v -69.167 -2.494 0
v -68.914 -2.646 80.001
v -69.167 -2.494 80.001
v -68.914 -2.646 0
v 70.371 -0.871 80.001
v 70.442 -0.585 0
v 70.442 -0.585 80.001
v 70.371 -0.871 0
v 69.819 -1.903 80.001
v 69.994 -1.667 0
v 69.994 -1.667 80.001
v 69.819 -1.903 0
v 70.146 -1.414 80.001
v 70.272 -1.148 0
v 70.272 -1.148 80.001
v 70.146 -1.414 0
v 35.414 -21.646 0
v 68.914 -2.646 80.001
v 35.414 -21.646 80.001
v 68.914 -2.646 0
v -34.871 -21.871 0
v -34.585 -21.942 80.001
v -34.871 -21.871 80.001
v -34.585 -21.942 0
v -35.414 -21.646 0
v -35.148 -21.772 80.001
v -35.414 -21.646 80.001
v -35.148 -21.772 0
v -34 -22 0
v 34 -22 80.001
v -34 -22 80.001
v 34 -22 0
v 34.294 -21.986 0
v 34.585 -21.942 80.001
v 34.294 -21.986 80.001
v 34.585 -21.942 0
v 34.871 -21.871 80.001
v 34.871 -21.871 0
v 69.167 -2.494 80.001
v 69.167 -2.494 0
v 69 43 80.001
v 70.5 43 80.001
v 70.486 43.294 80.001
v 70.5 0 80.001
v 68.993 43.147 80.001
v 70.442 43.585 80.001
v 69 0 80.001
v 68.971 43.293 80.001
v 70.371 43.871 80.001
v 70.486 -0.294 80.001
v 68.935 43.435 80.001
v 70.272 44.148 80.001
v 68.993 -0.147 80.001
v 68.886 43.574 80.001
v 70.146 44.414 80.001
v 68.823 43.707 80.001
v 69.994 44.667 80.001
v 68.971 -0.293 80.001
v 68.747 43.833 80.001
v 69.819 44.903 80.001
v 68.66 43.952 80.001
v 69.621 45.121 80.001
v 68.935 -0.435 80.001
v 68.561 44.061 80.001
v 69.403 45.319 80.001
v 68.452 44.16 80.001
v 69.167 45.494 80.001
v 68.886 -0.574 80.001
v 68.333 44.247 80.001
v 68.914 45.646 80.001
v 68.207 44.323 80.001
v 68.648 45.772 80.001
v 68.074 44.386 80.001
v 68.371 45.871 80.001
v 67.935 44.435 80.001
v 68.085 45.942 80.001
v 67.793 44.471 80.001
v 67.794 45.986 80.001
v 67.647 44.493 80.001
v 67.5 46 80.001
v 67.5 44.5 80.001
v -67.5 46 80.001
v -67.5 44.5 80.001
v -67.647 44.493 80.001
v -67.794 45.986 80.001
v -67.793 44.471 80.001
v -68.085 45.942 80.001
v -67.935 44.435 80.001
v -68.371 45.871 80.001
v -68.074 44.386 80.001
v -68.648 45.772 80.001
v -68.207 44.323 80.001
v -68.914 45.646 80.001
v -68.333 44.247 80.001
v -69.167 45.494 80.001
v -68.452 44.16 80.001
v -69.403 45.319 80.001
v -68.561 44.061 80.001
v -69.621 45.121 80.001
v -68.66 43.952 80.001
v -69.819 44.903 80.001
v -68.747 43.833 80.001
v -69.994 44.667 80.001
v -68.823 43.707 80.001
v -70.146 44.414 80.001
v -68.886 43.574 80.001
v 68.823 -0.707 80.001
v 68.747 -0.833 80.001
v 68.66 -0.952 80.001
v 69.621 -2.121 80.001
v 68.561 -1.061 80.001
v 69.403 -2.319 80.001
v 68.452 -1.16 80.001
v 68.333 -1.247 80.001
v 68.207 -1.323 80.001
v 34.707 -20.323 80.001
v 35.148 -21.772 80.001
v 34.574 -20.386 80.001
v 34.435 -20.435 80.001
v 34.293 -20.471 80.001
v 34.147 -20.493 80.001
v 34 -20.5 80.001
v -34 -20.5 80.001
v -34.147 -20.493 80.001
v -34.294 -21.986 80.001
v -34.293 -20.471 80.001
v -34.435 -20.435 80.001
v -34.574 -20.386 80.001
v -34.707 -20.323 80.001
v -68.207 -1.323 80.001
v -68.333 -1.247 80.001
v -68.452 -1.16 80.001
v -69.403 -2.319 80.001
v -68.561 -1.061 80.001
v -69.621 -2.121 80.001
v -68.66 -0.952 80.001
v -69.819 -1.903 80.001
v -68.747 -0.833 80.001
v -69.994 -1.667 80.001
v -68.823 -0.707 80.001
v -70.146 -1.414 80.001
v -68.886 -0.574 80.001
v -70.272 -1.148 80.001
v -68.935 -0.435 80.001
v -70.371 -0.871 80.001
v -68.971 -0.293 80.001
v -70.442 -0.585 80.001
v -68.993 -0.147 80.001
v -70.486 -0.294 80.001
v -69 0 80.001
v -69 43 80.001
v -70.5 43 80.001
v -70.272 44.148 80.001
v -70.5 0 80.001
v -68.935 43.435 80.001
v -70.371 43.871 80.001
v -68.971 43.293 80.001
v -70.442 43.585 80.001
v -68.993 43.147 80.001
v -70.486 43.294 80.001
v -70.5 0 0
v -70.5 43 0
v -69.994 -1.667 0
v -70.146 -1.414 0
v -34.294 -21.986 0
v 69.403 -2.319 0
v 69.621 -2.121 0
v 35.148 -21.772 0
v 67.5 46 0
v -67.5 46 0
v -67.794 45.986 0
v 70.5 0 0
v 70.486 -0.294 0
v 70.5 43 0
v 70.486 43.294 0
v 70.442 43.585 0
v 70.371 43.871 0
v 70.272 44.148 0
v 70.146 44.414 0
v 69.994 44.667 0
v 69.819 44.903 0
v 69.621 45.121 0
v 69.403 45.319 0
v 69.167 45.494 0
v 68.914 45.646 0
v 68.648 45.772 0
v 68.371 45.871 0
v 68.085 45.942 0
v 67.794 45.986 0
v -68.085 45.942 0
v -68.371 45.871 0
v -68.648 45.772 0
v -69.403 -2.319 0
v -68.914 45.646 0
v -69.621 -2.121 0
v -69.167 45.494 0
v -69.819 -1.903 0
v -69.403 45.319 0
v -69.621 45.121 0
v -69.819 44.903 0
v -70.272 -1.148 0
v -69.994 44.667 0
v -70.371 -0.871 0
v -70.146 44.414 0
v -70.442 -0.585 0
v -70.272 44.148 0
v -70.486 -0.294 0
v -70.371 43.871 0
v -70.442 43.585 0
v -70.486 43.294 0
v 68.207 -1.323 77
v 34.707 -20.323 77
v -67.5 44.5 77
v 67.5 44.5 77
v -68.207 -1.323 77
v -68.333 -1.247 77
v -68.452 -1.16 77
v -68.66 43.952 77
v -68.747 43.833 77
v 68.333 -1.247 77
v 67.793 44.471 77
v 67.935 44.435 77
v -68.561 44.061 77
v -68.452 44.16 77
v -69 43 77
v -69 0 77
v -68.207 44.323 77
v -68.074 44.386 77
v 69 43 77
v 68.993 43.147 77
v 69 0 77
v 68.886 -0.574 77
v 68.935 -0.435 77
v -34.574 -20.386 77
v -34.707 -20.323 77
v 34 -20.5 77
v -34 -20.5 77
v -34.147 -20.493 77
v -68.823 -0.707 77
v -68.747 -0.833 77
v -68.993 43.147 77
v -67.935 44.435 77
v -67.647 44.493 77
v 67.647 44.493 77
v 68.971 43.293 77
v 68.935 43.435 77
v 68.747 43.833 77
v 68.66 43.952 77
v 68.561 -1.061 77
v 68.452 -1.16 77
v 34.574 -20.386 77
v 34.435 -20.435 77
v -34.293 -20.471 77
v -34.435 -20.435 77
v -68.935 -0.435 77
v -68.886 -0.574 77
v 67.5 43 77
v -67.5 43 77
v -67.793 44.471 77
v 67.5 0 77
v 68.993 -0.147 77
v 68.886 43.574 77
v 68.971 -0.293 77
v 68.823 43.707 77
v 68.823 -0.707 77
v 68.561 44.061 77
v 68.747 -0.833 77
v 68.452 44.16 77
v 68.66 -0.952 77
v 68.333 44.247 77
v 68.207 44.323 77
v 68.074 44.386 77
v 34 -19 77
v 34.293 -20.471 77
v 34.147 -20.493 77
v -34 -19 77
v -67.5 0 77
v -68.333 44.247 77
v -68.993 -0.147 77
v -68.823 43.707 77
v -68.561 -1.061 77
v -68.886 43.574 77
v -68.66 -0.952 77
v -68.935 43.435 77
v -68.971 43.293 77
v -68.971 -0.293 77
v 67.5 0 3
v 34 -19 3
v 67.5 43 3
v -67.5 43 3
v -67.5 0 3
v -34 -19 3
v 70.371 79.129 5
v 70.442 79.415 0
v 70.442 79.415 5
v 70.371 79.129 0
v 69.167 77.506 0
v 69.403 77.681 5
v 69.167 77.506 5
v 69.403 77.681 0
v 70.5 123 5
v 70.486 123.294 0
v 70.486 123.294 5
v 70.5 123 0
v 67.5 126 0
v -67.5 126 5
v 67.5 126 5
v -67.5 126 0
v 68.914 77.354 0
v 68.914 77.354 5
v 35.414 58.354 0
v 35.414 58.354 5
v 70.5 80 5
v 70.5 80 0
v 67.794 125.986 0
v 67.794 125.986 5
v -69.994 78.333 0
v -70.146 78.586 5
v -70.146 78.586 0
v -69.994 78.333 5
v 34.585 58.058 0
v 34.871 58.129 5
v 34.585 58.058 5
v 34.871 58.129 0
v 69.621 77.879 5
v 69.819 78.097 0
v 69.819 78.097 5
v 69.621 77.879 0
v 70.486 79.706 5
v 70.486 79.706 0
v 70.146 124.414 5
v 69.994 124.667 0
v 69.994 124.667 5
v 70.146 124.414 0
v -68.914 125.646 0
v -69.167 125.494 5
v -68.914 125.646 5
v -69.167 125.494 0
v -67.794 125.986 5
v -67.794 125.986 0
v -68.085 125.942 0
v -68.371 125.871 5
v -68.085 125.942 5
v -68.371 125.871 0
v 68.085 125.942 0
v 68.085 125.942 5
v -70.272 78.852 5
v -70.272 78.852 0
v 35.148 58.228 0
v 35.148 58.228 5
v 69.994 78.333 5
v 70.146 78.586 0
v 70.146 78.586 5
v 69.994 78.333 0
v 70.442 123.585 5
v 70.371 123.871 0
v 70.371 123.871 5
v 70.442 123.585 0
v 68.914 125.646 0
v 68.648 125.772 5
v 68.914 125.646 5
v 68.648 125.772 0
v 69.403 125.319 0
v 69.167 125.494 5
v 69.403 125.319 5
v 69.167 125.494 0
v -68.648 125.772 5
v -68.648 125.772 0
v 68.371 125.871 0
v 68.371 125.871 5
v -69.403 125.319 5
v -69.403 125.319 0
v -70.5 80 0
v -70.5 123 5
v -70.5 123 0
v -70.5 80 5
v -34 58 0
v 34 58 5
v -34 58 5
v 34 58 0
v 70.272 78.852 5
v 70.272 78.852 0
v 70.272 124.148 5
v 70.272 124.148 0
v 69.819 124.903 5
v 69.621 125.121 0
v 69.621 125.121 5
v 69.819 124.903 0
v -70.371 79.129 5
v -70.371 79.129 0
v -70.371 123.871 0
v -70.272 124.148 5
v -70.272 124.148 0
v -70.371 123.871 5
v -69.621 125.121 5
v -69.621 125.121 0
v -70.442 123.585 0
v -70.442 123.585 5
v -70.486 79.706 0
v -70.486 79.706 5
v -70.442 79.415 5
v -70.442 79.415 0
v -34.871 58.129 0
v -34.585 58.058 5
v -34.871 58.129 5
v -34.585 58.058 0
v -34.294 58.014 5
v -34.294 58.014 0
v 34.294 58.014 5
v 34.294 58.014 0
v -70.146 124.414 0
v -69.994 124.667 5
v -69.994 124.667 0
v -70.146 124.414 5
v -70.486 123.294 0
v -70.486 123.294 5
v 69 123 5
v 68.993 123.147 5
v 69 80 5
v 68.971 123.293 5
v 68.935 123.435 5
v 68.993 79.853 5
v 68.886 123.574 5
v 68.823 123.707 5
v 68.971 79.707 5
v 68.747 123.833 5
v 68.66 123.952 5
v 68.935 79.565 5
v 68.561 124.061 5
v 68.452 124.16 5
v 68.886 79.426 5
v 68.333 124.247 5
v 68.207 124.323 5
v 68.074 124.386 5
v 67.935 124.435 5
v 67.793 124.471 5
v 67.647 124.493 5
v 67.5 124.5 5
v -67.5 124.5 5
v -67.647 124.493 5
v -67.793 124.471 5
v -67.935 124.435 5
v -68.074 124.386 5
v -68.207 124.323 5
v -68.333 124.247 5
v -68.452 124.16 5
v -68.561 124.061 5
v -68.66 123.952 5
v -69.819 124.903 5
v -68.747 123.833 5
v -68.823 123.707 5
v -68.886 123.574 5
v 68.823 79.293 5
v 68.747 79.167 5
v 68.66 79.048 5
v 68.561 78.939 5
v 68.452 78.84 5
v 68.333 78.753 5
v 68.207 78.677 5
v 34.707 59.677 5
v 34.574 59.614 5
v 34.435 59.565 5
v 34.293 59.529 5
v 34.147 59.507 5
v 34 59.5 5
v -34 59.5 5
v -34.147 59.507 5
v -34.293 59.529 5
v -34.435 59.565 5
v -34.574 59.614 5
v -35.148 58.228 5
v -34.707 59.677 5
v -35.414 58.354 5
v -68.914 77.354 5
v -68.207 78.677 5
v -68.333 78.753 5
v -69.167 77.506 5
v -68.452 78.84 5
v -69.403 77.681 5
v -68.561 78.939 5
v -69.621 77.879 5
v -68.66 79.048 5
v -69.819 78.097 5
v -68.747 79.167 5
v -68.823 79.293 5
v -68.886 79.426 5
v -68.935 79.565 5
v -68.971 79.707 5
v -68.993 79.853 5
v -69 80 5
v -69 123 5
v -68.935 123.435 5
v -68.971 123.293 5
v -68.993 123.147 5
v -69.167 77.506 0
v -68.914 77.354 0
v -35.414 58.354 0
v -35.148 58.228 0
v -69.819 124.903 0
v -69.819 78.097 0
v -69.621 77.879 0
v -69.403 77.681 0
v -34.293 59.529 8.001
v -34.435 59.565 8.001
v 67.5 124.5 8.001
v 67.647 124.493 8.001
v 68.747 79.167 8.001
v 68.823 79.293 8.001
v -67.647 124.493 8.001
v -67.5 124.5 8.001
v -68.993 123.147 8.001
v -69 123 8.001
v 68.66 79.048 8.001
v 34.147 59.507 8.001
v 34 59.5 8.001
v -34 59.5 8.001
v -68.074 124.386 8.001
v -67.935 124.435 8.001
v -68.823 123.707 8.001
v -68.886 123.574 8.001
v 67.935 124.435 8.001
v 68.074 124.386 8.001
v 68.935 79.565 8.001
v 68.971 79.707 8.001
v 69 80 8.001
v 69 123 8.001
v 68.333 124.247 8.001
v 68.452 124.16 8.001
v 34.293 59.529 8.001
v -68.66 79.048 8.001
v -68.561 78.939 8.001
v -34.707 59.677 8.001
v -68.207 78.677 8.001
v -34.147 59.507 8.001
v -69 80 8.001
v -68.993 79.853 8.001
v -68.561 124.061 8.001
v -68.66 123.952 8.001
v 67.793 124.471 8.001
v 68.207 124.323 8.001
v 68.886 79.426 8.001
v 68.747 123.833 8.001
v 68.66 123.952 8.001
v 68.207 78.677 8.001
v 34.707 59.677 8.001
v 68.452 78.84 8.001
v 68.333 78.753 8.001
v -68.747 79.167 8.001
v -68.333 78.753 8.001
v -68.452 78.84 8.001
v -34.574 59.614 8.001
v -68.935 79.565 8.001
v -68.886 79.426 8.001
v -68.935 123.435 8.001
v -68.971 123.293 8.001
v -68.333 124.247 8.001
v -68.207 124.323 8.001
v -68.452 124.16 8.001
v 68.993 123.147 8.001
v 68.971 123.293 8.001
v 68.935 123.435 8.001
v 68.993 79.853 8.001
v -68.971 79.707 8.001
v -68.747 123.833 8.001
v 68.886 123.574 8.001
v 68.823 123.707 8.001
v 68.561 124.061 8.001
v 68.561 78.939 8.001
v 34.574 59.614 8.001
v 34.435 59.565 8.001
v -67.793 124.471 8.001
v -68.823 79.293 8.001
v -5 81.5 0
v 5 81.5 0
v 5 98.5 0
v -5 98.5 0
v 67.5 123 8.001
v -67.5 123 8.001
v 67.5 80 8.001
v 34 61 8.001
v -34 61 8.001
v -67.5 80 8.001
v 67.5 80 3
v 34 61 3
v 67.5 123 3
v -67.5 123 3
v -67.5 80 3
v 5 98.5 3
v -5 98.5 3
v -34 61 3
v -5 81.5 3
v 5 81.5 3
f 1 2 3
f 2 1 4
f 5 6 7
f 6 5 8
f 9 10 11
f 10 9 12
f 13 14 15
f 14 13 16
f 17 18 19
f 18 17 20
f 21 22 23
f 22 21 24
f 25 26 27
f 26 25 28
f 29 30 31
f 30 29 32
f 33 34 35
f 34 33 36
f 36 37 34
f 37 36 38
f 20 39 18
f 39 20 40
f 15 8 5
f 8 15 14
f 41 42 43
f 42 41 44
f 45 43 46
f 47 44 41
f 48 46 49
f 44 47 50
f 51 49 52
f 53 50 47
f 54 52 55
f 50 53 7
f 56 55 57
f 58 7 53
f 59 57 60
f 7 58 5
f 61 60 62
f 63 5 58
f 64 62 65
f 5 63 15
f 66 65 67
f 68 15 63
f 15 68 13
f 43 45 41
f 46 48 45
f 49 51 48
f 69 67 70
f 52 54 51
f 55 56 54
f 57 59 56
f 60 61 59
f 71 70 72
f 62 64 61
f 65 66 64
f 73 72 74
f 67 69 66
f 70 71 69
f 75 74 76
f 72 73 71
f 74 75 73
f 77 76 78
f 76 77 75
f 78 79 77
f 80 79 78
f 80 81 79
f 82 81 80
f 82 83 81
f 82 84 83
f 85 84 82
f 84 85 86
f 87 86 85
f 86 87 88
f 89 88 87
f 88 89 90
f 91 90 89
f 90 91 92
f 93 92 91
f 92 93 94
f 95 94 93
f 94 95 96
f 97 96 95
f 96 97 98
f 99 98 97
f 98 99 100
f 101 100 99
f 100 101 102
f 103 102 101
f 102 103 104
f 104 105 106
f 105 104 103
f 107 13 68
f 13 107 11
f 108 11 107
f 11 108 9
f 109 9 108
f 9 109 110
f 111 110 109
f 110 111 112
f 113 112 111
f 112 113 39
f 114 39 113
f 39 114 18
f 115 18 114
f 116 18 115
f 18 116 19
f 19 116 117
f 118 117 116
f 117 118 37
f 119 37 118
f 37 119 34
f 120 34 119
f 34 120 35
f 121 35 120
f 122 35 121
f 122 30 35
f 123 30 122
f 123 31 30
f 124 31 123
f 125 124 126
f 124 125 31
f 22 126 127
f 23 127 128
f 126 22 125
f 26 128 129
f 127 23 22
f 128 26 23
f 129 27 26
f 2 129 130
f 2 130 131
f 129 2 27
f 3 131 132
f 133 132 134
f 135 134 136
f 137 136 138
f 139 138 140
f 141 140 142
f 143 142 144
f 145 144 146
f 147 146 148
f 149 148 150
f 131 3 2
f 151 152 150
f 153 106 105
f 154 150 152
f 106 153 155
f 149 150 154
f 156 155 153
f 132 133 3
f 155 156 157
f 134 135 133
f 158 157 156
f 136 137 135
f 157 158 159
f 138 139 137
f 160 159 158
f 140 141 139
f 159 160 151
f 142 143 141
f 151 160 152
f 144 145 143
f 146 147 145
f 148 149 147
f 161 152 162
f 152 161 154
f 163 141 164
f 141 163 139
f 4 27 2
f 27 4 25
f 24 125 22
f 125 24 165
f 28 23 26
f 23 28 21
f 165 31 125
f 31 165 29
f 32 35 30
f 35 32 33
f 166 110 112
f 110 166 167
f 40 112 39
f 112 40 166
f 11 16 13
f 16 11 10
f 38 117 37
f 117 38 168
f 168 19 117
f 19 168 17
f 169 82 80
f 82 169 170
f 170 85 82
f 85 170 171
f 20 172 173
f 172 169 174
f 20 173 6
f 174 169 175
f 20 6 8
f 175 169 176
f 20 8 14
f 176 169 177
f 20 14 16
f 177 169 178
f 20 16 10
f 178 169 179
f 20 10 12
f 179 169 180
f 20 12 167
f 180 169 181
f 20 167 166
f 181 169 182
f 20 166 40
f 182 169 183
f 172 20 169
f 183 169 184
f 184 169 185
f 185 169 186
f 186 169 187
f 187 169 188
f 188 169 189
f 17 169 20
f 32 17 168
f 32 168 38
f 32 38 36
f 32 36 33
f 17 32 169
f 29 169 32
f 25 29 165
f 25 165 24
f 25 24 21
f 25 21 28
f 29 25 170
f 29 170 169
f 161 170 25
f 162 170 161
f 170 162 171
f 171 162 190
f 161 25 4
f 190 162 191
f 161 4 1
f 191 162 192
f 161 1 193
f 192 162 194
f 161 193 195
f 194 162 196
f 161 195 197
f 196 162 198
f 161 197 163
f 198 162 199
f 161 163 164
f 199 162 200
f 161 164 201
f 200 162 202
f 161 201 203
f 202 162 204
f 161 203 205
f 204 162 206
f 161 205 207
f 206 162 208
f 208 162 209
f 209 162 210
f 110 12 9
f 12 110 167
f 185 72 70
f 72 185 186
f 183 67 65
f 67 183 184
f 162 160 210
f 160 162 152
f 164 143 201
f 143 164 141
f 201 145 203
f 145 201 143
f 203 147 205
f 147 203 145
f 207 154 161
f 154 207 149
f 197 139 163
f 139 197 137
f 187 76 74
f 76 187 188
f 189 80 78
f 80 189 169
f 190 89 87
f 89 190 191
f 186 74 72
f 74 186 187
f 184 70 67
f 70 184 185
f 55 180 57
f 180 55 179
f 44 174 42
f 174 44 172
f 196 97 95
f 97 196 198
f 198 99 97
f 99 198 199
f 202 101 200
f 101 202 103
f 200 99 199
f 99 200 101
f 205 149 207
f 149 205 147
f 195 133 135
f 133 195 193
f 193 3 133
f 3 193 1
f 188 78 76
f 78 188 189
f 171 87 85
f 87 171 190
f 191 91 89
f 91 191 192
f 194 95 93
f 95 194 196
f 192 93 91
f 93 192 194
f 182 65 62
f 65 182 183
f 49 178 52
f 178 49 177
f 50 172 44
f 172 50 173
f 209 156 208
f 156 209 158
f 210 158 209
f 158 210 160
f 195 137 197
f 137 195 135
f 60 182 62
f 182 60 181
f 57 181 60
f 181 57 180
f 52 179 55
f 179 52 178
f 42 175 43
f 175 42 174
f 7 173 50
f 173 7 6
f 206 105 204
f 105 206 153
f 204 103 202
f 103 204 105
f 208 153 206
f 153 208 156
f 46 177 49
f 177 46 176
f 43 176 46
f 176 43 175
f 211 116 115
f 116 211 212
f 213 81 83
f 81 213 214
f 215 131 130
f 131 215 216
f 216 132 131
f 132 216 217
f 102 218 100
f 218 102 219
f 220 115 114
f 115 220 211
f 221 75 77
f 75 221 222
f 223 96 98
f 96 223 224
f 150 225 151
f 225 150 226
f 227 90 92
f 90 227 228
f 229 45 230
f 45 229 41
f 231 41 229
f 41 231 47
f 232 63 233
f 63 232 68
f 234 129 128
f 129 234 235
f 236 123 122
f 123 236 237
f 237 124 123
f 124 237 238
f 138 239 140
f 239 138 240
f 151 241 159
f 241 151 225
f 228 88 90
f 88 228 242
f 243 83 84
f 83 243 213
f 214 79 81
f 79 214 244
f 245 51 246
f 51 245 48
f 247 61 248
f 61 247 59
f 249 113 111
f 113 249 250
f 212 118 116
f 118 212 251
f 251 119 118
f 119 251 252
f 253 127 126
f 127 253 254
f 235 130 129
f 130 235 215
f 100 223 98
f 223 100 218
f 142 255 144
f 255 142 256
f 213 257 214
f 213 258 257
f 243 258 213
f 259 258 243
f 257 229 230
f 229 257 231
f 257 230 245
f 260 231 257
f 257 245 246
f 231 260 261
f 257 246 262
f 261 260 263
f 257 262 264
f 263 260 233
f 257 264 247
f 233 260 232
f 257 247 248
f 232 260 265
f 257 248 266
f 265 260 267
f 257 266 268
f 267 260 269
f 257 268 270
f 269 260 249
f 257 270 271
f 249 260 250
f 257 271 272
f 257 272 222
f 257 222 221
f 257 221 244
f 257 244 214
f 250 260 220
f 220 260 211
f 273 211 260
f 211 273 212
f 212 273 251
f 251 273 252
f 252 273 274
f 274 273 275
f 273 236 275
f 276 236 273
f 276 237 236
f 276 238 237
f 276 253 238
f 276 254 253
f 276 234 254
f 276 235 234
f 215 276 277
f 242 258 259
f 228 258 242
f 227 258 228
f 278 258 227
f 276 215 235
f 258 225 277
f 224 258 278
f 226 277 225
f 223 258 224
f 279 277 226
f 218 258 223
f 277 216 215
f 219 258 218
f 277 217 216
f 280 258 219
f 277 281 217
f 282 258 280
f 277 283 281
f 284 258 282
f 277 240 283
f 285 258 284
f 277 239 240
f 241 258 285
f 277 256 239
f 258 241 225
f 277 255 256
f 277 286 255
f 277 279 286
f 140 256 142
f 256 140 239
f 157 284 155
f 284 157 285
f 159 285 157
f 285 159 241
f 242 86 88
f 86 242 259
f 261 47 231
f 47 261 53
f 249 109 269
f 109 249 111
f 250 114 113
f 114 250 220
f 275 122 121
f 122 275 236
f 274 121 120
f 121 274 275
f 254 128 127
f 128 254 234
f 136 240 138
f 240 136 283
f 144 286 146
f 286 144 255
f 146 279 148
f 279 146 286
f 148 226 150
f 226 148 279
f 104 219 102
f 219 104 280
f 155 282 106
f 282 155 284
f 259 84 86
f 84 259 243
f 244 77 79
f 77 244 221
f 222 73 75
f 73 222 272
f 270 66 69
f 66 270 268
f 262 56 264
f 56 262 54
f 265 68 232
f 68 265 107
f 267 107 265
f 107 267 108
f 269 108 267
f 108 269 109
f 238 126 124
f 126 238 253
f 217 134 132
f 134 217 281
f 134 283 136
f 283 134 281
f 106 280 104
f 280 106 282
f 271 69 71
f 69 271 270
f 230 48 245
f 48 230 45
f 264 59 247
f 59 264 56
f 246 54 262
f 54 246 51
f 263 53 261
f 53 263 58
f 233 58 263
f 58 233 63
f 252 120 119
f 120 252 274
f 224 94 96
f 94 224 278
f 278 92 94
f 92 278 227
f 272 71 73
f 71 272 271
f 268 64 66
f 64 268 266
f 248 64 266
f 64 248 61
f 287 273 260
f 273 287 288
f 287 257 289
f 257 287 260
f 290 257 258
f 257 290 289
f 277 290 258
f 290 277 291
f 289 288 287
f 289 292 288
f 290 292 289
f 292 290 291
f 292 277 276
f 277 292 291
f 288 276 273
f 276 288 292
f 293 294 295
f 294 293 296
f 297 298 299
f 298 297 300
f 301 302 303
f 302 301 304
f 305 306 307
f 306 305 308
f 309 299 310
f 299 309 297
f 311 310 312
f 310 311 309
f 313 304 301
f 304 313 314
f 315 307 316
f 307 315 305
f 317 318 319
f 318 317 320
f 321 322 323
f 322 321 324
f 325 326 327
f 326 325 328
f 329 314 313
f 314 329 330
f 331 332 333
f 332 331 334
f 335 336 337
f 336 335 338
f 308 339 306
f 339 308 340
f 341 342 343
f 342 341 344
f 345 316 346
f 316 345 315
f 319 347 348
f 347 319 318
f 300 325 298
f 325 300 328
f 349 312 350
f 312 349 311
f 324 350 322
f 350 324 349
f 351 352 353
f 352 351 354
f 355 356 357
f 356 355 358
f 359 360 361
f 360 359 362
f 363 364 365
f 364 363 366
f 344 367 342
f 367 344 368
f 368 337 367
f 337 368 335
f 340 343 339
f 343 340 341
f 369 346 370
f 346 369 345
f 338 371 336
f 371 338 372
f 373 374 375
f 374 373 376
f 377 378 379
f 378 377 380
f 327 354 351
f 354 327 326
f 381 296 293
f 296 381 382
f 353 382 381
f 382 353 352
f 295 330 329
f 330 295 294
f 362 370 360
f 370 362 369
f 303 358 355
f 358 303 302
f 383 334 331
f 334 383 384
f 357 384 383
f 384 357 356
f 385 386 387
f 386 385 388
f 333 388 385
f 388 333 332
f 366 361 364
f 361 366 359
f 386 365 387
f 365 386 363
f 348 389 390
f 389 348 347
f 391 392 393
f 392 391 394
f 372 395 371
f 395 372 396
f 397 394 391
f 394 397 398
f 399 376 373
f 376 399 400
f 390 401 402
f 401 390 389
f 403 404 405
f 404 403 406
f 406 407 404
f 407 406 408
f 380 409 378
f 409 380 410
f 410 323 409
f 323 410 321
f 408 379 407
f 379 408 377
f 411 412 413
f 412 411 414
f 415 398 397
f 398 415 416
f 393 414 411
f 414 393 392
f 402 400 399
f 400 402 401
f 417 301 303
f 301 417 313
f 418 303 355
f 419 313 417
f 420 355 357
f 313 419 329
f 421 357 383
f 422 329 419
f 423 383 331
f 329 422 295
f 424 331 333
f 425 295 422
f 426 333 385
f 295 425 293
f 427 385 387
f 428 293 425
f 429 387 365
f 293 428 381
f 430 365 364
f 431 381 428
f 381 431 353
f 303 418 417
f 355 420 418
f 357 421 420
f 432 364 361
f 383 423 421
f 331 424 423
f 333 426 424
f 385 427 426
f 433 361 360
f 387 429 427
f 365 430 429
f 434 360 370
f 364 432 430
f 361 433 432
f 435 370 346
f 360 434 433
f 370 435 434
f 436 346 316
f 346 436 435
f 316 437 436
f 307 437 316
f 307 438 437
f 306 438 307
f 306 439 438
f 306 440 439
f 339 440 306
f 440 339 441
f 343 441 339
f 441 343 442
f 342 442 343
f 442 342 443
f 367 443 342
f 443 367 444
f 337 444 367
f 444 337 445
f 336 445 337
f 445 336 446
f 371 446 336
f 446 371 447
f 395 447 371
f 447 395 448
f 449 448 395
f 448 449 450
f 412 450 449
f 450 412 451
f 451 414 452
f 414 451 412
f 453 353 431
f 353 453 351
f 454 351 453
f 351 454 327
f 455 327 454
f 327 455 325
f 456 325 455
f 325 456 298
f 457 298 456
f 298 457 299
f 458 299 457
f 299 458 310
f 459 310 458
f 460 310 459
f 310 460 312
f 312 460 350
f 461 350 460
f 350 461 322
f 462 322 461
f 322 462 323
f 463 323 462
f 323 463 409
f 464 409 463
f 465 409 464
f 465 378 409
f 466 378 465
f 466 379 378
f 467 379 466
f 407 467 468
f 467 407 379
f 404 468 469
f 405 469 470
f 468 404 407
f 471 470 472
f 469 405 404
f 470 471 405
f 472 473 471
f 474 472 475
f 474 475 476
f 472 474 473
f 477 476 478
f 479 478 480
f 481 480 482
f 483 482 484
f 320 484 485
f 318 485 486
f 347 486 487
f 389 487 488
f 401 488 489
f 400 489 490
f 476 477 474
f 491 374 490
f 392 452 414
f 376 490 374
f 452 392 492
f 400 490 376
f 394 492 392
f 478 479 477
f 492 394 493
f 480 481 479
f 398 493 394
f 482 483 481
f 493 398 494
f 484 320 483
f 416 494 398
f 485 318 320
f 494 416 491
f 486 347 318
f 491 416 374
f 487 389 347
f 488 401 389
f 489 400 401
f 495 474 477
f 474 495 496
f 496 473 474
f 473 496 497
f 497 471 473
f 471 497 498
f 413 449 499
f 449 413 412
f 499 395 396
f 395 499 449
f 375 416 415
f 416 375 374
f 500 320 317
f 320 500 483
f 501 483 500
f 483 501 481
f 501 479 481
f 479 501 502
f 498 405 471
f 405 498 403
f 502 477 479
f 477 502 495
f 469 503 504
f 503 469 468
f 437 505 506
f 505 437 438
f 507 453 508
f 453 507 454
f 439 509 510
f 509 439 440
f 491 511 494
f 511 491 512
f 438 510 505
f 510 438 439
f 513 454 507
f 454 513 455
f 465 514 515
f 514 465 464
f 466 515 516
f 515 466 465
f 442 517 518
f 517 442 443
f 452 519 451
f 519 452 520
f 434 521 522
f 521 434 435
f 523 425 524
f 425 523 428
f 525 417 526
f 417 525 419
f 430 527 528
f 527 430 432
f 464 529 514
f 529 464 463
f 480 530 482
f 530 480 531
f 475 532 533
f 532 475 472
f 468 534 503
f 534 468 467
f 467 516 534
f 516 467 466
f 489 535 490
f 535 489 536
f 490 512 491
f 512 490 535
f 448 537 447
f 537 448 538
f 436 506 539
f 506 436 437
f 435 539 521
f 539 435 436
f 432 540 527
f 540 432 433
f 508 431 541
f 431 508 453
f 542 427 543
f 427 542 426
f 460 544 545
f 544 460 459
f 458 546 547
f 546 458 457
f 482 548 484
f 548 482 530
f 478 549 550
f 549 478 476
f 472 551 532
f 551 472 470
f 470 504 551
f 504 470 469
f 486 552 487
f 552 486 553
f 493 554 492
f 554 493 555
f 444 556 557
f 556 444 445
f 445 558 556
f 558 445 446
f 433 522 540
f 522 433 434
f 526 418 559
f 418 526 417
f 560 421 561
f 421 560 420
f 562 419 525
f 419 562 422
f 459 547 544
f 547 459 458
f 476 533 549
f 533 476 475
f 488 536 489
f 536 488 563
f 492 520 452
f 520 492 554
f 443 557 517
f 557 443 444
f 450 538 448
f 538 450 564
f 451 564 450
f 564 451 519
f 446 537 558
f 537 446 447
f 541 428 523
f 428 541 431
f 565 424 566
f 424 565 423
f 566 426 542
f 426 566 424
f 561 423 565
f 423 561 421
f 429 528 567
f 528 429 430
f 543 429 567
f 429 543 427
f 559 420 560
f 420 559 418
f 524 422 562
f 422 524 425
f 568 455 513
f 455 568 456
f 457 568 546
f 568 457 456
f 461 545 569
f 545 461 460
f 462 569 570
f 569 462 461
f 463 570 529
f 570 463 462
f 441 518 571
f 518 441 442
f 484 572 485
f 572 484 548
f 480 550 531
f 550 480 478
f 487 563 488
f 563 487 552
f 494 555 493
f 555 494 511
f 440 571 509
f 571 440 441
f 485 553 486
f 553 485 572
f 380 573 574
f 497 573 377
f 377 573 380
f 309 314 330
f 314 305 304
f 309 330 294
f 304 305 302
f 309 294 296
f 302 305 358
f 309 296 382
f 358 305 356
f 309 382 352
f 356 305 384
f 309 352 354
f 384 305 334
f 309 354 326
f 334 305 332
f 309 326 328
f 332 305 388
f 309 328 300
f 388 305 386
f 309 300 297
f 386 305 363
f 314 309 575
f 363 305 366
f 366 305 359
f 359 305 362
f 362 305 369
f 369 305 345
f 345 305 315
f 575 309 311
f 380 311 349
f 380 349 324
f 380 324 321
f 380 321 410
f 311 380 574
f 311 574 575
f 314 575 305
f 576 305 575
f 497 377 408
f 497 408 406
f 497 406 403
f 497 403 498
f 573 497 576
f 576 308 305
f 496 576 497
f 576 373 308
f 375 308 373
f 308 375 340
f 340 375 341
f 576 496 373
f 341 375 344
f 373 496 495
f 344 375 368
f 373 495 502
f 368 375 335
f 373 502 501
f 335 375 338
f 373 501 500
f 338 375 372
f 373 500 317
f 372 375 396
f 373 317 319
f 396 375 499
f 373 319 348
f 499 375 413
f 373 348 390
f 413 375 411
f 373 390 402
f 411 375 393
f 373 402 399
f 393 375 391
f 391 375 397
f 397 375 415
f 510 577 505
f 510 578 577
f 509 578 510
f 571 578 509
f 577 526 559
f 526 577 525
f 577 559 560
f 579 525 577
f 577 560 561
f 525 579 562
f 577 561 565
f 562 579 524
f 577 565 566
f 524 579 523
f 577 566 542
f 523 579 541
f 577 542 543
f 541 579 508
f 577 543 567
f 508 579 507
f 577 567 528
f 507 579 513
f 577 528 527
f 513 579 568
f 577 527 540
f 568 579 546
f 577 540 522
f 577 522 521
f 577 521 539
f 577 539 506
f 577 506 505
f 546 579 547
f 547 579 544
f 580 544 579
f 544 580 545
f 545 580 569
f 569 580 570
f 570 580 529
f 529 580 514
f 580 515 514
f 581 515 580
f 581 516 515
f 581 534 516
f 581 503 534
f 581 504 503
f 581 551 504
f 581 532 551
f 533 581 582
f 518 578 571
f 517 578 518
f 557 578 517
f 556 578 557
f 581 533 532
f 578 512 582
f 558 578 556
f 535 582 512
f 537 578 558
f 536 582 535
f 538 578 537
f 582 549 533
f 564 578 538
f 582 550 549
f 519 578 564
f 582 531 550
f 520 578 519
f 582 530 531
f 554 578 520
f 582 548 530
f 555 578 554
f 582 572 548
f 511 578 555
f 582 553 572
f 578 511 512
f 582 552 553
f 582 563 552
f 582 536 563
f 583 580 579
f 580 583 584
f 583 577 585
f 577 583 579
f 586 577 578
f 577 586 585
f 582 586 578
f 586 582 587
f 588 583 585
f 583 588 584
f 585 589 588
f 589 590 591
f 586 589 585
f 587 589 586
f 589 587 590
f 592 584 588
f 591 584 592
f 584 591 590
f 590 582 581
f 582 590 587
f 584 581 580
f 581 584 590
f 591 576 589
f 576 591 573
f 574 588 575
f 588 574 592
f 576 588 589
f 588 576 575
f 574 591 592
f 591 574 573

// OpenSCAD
L1=135;
L2=68;
W1=43;
W2=19;
H=77;
T=3;

difference() {
    minkowski() {
        linear_extrude(height=H+T)
        battery_shape();
        cylinder(d=2*T,h=0.001,$fn=64);
    }
    translate([0,0,H])
    minkowski() {
        linear_extrude(height=H+T)
        battery_shape();
        cylinder(d=T,h=0.001,$fn=64);
    }
    
    translate([0,0,T])
    linear_extrude(height=H)
    battery_shape();
}

translate([0,80,0])
difference() {
    minkowski() {
        linear_extrude(height=5+T)
        battery_shape();
        cylinder(d=2*T,h=0.001,$fn=64);
    }
    
    translate([0,0,5])
    difference() {
        minkowski() {
            linear_extrude(height=5+T)
            battery_shape();
            cylinder(d=2*T,h=0.001,$fn=64);
        }
        minkowski() {
            linear_extrude(height=5+T)
            battery_shape();
            cylinder(d=T,h=0.001,$fn=64);
        }
    }
    
    translate([0,0,T])
    linear_extrude(height=15)
    battery_shape();
    
    translate([0,10,0])
    cube_center([10,17,10]);
}

module battery_shape () {
    polygon([
[-L1/2,0],
[-L2/2,-W2],
[L2/2,-W2],
[L1/2,0],
[L1/2,W1],
[-L1/2,W1],
]);
};


module cube_center(dims) {
    translate([-dims[0]/2, -dims[1]/2, 0])
    cube(dims);
}
